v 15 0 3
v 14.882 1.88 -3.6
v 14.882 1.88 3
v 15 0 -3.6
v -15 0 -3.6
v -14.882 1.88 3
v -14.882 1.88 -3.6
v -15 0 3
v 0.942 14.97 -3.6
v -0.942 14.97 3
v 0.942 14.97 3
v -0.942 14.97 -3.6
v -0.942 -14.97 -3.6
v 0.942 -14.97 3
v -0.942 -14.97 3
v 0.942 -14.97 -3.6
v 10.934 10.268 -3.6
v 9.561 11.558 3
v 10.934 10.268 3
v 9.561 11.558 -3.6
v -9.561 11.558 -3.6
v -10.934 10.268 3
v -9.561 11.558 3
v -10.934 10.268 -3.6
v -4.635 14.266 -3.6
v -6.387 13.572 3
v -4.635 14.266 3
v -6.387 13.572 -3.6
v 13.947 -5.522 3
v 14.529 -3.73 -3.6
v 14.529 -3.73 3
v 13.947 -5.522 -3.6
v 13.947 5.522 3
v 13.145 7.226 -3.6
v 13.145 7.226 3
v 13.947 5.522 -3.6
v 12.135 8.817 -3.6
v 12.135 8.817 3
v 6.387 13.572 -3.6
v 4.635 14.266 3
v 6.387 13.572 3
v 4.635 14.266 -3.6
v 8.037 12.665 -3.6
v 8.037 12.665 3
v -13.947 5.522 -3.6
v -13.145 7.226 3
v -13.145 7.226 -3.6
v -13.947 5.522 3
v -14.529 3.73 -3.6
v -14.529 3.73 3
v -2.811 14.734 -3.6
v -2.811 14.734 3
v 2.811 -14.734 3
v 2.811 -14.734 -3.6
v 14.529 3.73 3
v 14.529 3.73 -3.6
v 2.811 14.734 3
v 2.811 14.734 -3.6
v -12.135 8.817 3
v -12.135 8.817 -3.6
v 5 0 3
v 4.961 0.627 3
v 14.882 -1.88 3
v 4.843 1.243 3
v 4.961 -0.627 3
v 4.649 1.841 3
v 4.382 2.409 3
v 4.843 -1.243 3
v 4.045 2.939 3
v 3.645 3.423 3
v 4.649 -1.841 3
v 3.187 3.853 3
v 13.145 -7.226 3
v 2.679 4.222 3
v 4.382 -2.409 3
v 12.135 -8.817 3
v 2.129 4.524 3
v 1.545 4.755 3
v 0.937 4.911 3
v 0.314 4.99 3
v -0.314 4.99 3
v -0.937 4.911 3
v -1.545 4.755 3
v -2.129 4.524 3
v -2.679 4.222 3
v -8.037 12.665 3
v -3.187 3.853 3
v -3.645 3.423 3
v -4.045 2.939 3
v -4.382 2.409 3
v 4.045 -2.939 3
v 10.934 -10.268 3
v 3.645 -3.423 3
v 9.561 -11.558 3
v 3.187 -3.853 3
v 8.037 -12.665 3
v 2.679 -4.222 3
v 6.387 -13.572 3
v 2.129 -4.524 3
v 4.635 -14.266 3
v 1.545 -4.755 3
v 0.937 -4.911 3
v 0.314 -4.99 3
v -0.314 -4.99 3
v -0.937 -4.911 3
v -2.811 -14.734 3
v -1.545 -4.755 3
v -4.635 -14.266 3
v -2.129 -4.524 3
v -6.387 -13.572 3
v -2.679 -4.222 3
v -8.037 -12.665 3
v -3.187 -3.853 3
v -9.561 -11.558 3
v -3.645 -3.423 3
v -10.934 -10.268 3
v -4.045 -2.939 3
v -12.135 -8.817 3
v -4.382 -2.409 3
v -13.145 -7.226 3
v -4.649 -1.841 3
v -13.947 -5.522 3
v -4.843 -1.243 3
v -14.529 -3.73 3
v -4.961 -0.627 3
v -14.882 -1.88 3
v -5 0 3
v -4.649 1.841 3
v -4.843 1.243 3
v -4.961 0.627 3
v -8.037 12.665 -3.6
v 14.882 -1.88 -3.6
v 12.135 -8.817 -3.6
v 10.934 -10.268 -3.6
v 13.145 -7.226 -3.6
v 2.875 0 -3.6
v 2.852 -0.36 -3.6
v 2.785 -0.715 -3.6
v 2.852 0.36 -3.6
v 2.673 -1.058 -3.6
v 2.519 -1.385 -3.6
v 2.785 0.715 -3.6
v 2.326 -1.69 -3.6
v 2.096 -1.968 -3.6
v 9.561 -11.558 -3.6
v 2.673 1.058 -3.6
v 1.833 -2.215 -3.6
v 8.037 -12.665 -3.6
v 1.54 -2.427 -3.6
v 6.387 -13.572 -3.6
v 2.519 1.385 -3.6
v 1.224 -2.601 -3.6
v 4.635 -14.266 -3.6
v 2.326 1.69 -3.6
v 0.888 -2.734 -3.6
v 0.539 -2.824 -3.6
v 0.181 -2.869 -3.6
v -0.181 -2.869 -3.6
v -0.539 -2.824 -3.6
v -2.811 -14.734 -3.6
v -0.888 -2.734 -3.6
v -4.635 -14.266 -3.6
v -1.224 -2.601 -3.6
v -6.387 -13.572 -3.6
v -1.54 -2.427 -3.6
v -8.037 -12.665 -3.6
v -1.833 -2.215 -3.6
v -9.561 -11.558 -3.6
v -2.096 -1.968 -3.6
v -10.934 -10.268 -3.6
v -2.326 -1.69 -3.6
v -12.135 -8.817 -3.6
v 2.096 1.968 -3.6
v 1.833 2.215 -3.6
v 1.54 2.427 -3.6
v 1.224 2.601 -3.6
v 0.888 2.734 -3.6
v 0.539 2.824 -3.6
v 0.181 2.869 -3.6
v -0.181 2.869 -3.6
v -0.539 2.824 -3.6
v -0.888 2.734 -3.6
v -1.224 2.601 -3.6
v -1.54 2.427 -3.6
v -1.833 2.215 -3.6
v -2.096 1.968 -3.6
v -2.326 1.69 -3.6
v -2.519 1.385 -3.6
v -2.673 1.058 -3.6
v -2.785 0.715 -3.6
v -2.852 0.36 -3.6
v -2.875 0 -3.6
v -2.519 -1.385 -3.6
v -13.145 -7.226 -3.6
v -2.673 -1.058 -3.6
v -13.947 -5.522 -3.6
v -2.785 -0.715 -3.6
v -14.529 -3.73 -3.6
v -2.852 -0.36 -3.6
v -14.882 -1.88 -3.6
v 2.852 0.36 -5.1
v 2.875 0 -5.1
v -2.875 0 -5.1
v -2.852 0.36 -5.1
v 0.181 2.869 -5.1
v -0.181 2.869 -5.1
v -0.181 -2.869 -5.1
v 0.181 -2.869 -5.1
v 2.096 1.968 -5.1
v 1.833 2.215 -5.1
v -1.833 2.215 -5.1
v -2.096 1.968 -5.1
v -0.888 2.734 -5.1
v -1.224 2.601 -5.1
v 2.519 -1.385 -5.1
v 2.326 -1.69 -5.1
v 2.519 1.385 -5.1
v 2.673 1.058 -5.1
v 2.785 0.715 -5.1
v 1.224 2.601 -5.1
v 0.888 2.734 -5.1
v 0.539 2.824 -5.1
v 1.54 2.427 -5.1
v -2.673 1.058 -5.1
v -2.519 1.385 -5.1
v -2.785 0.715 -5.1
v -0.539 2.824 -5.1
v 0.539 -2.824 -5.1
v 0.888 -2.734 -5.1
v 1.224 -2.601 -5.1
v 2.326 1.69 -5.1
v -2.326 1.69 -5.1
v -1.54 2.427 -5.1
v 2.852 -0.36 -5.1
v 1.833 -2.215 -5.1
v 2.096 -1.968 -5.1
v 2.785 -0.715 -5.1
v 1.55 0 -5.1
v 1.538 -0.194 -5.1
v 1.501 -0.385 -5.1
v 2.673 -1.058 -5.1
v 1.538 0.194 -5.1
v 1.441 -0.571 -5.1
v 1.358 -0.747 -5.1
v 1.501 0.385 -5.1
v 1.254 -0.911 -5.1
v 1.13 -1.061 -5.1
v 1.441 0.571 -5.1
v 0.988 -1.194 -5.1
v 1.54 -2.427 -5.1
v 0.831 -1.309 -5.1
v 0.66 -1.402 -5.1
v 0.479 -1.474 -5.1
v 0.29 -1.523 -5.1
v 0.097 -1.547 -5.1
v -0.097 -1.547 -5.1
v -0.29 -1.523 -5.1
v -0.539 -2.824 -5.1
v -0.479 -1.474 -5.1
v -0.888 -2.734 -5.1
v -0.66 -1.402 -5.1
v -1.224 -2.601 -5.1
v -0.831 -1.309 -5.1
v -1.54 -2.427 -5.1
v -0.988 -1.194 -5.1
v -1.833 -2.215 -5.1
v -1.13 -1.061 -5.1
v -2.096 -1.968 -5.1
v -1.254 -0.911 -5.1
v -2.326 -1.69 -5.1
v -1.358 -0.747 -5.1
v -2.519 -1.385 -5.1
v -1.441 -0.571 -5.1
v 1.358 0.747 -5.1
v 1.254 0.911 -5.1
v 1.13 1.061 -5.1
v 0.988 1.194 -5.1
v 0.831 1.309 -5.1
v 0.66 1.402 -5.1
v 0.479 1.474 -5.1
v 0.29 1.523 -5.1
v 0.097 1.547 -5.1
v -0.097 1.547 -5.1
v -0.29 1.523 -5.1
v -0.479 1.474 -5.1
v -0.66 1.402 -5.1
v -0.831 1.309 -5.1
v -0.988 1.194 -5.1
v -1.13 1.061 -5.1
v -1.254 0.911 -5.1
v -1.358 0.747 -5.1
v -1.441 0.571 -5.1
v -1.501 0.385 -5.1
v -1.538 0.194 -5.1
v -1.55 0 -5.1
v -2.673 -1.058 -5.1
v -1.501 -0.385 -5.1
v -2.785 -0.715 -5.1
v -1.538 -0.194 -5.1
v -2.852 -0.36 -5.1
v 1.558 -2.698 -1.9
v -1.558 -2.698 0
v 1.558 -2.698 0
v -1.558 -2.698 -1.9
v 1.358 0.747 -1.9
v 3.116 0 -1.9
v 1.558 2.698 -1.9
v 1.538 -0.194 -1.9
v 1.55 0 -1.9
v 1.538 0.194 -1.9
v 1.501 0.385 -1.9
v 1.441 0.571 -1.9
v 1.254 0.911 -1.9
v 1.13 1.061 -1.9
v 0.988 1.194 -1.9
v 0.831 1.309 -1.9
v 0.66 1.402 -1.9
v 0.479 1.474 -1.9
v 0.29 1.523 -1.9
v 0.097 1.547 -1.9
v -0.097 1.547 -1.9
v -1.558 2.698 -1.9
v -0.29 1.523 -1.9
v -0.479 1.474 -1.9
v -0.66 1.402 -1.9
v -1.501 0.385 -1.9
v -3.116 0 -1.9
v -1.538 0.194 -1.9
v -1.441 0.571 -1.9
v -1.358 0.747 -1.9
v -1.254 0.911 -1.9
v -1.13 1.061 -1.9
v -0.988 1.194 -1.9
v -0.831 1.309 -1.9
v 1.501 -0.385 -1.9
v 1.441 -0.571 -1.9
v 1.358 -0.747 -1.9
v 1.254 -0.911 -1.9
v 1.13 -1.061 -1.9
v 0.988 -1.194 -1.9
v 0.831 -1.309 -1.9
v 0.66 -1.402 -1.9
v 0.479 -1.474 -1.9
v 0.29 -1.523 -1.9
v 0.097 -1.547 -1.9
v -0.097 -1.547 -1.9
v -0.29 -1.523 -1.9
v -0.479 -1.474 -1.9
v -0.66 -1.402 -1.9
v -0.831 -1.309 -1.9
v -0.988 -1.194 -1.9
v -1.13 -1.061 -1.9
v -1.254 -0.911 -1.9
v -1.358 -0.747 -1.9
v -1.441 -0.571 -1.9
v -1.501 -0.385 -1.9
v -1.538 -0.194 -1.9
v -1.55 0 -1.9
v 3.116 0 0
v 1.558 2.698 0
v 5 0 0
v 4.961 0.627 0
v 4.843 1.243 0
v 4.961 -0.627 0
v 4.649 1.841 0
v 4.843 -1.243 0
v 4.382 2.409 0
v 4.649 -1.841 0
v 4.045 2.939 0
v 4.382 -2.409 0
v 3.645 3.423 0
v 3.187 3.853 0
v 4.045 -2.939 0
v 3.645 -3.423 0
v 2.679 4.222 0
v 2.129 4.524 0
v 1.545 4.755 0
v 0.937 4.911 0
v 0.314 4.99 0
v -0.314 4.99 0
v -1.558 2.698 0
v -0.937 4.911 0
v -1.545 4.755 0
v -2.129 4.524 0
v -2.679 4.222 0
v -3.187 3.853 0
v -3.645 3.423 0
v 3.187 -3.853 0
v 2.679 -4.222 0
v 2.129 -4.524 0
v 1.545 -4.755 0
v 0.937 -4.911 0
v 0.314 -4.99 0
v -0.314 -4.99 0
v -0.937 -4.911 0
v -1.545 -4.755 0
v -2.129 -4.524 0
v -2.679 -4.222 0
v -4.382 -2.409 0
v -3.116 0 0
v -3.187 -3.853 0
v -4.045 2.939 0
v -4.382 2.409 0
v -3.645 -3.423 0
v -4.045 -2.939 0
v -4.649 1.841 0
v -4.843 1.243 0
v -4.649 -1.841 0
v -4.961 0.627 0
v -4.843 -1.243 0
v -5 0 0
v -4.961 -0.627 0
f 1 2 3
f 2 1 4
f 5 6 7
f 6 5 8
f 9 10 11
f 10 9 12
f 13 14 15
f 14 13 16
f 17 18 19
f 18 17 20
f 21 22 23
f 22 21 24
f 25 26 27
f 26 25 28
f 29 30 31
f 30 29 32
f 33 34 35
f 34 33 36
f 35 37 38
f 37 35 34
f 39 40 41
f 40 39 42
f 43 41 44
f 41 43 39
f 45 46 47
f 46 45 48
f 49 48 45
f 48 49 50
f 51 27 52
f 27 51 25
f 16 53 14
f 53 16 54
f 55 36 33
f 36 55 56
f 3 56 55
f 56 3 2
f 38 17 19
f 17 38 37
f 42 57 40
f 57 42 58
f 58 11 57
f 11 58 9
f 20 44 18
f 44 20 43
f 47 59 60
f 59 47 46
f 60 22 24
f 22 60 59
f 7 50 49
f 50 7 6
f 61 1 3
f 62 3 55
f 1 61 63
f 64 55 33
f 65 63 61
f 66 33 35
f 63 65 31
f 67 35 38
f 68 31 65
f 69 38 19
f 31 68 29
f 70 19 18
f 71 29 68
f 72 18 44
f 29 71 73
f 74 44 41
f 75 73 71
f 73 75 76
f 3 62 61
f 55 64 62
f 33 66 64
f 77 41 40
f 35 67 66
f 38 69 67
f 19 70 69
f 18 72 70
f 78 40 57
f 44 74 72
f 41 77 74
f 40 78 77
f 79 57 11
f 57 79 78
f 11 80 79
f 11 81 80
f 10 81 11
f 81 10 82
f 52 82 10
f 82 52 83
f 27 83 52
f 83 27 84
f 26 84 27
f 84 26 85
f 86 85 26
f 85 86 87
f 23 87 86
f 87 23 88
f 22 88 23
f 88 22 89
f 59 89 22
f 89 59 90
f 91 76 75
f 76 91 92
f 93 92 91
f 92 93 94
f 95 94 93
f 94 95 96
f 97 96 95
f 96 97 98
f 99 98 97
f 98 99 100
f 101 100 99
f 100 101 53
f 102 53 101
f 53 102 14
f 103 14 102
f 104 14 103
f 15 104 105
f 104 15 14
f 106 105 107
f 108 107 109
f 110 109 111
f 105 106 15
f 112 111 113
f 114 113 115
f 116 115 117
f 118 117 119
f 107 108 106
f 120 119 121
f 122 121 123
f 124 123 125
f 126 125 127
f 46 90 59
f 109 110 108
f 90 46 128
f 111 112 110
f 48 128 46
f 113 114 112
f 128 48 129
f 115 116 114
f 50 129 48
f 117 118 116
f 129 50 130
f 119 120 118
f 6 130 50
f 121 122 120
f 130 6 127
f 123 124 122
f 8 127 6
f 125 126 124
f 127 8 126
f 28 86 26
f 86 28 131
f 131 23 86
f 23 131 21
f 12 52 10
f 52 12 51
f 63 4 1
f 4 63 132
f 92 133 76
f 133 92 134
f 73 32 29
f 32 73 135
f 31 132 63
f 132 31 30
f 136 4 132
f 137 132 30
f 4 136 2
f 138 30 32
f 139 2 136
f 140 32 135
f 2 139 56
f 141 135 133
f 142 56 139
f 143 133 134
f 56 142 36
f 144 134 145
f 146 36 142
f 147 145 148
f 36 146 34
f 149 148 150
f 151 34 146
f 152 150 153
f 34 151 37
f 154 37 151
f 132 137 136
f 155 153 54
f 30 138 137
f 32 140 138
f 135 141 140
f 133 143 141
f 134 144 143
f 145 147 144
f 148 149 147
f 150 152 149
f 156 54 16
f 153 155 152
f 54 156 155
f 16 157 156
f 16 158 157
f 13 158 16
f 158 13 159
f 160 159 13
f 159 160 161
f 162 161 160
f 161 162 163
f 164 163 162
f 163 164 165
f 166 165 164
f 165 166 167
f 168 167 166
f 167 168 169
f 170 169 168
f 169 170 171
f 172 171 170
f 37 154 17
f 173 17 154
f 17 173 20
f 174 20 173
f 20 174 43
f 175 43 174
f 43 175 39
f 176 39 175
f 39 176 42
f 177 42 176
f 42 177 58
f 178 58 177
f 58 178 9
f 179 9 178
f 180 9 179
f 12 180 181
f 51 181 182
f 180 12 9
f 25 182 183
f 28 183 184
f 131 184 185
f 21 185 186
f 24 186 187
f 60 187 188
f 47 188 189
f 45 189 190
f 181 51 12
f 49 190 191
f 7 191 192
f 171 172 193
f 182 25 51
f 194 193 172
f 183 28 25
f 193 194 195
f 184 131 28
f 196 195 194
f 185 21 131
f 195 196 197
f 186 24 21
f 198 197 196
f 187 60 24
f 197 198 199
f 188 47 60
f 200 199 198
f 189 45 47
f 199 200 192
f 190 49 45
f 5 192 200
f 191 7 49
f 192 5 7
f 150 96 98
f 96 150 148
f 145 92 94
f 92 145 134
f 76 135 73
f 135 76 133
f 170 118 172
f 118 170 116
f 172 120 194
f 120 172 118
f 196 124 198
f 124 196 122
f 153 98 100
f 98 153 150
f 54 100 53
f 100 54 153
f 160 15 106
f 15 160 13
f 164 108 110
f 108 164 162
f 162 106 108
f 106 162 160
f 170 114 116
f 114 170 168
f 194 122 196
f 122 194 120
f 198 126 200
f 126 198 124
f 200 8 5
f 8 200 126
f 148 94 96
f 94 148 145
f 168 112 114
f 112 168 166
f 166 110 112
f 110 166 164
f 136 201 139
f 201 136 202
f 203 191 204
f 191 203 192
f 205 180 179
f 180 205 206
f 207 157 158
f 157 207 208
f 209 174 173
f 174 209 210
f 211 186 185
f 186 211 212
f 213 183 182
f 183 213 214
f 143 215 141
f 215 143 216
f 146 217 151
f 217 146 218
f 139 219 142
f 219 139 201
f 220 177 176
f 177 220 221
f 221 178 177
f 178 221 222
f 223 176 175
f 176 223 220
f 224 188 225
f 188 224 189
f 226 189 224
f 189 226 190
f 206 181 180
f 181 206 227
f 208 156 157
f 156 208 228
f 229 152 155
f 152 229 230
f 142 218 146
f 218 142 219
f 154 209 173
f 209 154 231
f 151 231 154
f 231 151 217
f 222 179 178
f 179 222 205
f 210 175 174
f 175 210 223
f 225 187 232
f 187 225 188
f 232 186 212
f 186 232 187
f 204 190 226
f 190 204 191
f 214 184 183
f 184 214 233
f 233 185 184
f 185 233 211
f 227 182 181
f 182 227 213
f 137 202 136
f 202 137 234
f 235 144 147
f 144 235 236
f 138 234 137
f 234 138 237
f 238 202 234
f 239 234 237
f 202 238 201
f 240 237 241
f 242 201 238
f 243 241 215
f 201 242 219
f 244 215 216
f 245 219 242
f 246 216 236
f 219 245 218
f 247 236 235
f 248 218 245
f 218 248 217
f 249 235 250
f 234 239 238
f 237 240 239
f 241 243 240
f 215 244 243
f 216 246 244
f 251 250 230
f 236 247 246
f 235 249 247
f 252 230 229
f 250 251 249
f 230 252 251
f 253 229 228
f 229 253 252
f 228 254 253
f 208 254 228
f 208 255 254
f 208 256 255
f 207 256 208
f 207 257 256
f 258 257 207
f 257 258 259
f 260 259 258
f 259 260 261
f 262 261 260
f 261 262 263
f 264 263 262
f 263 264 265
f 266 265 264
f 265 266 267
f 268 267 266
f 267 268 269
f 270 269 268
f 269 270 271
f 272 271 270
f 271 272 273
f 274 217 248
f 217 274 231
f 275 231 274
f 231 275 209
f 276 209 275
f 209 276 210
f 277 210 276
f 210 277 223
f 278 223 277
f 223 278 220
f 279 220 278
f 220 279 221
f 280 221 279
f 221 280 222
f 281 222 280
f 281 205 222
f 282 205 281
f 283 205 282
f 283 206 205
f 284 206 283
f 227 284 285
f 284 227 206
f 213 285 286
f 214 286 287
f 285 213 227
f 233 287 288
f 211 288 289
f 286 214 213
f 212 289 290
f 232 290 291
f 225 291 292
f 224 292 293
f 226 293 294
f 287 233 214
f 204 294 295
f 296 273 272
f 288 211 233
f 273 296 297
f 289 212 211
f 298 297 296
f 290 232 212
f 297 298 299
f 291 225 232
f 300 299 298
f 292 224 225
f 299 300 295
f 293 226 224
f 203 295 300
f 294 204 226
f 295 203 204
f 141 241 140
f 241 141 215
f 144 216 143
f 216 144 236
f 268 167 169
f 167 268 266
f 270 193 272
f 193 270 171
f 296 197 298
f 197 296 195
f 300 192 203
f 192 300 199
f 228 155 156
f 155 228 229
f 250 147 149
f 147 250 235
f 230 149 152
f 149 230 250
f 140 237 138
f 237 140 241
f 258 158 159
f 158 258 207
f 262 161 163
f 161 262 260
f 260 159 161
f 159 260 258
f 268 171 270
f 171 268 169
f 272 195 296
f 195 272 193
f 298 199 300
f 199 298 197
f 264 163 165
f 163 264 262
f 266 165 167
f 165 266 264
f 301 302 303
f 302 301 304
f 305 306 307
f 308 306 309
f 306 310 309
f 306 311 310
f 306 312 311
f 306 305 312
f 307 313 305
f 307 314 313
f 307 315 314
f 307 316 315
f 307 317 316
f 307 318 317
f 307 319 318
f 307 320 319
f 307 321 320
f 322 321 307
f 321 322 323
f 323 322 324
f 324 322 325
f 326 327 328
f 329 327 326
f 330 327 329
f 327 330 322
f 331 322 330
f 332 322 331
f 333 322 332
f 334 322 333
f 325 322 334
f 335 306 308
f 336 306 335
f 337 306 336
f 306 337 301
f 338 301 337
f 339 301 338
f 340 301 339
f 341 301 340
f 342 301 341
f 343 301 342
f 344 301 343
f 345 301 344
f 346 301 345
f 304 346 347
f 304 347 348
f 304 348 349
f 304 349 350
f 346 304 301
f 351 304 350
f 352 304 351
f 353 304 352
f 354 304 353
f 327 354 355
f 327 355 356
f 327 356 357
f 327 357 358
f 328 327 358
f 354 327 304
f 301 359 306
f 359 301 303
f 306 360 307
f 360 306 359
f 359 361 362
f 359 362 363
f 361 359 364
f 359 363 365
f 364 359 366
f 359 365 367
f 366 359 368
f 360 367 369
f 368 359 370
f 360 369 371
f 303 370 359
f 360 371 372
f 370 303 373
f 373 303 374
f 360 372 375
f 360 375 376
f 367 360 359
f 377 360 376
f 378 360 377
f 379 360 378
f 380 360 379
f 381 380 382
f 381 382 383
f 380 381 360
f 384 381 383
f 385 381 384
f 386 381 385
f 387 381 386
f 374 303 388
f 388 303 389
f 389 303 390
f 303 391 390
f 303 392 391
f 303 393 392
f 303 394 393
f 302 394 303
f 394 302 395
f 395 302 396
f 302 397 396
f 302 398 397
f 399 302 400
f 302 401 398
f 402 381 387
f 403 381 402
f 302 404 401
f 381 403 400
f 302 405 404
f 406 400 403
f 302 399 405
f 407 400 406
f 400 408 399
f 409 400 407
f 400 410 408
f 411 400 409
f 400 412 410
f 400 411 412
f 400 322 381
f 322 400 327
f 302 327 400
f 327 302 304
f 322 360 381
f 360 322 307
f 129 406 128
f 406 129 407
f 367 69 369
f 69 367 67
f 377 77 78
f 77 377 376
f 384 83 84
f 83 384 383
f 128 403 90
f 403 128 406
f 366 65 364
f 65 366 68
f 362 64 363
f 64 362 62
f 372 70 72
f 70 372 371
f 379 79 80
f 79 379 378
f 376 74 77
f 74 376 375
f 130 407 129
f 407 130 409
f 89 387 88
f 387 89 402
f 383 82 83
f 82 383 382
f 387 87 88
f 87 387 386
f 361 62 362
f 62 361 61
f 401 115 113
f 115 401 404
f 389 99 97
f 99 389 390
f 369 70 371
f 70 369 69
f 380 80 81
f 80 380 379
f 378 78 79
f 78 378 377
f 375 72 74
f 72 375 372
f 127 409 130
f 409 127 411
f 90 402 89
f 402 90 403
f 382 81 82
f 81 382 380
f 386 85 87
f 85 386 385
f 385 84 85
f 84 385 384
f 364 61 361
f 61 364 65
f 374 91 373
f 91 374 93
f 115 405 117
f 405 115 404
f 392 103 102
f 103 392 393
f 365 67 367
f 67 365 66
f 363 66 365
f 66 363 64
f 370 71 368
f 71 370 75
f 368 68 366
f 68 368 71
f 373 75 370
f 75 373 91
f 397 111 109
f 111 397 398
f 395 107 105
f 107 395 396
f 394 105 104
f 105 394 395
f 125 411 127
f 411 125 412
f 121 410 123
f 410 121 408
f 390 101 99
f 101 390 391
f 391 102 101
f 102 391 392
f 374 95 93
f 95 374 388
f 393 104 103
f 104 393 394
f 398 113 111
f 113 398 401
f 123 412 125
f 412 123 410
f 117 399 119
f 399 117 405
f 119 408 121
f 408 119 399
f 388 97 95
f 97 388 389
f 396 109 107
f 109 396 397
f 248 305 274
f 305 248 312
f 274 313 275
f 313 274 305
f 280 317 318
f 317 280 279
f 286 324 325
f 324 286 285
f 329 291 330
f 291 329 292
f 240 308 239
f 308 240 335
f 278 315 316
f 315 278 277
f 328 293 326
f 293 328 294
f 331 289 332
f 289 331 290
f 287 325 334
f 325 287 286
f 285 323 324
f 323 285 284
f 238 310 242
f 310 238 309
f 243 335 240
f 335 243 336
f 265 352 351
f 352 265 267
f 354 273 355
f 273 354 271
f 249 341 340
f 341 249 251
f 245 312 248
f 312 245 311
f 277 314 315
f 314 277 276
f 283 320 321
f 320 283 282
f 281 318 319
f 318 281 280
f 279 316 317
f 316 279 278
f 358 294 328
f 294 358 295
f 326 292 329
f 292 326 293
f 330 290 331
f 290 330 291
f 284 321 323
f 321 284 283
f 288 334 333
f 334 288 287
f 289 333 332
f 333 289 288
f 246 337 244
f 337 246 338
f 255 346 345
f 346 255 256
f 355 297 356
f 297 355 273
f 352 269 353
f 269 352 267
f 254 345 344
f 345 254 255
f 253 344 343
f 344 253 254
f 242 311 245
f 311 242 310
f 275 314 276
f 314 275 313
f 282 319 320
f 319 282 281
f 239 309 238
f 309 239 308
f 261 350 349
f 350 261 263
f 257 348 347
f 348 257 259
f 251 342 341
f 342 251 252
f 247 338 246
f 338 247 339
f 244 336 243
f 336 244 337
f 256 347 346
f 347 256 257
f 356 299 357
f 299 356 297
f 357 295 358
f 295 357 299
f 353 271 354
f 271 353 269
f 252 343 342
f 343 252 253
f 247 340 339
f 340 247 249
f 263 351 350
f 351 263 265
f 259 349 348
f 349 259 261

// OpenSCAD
$fn = 50;

difference() {
	union() {
		translate(v = [0, 0, -3.5999999999999996]) {
			cylinder(h = 6.6, r = 15.0);
		}
		#translate(v = [0, 0, -5.1]) {
			cylinder(h = 5.1, r = 2.875);
		}
	}
	union() {
		translate(v = [0, 0, 0]) {
			rotate(a = [0, 0, 0]) {
				difference() {
					union() {
						translate(v = [0, 0, -1.9]) {
							linear_extrude(height = 1.9) {
								polygon(points = [[3.1158, 0.0], [1.5579000000000005, 2.698361953111554], [-1.5578999999999994, 2.6983619531115544], [-3.1158, 3.815754496783323e-16], [-1.5579000000000014, -2.6983619531115535], [1.557899999999998, -2.6983619531115552]]);
							}
						}
					}
					union();
				}
			}
		}
		#cylinder(h = 3, r = 5.0);
		#translate(v = [0, 0, -100.0]) {
			cylinder(h = 200, r = 1.55);
		}
	}
}
